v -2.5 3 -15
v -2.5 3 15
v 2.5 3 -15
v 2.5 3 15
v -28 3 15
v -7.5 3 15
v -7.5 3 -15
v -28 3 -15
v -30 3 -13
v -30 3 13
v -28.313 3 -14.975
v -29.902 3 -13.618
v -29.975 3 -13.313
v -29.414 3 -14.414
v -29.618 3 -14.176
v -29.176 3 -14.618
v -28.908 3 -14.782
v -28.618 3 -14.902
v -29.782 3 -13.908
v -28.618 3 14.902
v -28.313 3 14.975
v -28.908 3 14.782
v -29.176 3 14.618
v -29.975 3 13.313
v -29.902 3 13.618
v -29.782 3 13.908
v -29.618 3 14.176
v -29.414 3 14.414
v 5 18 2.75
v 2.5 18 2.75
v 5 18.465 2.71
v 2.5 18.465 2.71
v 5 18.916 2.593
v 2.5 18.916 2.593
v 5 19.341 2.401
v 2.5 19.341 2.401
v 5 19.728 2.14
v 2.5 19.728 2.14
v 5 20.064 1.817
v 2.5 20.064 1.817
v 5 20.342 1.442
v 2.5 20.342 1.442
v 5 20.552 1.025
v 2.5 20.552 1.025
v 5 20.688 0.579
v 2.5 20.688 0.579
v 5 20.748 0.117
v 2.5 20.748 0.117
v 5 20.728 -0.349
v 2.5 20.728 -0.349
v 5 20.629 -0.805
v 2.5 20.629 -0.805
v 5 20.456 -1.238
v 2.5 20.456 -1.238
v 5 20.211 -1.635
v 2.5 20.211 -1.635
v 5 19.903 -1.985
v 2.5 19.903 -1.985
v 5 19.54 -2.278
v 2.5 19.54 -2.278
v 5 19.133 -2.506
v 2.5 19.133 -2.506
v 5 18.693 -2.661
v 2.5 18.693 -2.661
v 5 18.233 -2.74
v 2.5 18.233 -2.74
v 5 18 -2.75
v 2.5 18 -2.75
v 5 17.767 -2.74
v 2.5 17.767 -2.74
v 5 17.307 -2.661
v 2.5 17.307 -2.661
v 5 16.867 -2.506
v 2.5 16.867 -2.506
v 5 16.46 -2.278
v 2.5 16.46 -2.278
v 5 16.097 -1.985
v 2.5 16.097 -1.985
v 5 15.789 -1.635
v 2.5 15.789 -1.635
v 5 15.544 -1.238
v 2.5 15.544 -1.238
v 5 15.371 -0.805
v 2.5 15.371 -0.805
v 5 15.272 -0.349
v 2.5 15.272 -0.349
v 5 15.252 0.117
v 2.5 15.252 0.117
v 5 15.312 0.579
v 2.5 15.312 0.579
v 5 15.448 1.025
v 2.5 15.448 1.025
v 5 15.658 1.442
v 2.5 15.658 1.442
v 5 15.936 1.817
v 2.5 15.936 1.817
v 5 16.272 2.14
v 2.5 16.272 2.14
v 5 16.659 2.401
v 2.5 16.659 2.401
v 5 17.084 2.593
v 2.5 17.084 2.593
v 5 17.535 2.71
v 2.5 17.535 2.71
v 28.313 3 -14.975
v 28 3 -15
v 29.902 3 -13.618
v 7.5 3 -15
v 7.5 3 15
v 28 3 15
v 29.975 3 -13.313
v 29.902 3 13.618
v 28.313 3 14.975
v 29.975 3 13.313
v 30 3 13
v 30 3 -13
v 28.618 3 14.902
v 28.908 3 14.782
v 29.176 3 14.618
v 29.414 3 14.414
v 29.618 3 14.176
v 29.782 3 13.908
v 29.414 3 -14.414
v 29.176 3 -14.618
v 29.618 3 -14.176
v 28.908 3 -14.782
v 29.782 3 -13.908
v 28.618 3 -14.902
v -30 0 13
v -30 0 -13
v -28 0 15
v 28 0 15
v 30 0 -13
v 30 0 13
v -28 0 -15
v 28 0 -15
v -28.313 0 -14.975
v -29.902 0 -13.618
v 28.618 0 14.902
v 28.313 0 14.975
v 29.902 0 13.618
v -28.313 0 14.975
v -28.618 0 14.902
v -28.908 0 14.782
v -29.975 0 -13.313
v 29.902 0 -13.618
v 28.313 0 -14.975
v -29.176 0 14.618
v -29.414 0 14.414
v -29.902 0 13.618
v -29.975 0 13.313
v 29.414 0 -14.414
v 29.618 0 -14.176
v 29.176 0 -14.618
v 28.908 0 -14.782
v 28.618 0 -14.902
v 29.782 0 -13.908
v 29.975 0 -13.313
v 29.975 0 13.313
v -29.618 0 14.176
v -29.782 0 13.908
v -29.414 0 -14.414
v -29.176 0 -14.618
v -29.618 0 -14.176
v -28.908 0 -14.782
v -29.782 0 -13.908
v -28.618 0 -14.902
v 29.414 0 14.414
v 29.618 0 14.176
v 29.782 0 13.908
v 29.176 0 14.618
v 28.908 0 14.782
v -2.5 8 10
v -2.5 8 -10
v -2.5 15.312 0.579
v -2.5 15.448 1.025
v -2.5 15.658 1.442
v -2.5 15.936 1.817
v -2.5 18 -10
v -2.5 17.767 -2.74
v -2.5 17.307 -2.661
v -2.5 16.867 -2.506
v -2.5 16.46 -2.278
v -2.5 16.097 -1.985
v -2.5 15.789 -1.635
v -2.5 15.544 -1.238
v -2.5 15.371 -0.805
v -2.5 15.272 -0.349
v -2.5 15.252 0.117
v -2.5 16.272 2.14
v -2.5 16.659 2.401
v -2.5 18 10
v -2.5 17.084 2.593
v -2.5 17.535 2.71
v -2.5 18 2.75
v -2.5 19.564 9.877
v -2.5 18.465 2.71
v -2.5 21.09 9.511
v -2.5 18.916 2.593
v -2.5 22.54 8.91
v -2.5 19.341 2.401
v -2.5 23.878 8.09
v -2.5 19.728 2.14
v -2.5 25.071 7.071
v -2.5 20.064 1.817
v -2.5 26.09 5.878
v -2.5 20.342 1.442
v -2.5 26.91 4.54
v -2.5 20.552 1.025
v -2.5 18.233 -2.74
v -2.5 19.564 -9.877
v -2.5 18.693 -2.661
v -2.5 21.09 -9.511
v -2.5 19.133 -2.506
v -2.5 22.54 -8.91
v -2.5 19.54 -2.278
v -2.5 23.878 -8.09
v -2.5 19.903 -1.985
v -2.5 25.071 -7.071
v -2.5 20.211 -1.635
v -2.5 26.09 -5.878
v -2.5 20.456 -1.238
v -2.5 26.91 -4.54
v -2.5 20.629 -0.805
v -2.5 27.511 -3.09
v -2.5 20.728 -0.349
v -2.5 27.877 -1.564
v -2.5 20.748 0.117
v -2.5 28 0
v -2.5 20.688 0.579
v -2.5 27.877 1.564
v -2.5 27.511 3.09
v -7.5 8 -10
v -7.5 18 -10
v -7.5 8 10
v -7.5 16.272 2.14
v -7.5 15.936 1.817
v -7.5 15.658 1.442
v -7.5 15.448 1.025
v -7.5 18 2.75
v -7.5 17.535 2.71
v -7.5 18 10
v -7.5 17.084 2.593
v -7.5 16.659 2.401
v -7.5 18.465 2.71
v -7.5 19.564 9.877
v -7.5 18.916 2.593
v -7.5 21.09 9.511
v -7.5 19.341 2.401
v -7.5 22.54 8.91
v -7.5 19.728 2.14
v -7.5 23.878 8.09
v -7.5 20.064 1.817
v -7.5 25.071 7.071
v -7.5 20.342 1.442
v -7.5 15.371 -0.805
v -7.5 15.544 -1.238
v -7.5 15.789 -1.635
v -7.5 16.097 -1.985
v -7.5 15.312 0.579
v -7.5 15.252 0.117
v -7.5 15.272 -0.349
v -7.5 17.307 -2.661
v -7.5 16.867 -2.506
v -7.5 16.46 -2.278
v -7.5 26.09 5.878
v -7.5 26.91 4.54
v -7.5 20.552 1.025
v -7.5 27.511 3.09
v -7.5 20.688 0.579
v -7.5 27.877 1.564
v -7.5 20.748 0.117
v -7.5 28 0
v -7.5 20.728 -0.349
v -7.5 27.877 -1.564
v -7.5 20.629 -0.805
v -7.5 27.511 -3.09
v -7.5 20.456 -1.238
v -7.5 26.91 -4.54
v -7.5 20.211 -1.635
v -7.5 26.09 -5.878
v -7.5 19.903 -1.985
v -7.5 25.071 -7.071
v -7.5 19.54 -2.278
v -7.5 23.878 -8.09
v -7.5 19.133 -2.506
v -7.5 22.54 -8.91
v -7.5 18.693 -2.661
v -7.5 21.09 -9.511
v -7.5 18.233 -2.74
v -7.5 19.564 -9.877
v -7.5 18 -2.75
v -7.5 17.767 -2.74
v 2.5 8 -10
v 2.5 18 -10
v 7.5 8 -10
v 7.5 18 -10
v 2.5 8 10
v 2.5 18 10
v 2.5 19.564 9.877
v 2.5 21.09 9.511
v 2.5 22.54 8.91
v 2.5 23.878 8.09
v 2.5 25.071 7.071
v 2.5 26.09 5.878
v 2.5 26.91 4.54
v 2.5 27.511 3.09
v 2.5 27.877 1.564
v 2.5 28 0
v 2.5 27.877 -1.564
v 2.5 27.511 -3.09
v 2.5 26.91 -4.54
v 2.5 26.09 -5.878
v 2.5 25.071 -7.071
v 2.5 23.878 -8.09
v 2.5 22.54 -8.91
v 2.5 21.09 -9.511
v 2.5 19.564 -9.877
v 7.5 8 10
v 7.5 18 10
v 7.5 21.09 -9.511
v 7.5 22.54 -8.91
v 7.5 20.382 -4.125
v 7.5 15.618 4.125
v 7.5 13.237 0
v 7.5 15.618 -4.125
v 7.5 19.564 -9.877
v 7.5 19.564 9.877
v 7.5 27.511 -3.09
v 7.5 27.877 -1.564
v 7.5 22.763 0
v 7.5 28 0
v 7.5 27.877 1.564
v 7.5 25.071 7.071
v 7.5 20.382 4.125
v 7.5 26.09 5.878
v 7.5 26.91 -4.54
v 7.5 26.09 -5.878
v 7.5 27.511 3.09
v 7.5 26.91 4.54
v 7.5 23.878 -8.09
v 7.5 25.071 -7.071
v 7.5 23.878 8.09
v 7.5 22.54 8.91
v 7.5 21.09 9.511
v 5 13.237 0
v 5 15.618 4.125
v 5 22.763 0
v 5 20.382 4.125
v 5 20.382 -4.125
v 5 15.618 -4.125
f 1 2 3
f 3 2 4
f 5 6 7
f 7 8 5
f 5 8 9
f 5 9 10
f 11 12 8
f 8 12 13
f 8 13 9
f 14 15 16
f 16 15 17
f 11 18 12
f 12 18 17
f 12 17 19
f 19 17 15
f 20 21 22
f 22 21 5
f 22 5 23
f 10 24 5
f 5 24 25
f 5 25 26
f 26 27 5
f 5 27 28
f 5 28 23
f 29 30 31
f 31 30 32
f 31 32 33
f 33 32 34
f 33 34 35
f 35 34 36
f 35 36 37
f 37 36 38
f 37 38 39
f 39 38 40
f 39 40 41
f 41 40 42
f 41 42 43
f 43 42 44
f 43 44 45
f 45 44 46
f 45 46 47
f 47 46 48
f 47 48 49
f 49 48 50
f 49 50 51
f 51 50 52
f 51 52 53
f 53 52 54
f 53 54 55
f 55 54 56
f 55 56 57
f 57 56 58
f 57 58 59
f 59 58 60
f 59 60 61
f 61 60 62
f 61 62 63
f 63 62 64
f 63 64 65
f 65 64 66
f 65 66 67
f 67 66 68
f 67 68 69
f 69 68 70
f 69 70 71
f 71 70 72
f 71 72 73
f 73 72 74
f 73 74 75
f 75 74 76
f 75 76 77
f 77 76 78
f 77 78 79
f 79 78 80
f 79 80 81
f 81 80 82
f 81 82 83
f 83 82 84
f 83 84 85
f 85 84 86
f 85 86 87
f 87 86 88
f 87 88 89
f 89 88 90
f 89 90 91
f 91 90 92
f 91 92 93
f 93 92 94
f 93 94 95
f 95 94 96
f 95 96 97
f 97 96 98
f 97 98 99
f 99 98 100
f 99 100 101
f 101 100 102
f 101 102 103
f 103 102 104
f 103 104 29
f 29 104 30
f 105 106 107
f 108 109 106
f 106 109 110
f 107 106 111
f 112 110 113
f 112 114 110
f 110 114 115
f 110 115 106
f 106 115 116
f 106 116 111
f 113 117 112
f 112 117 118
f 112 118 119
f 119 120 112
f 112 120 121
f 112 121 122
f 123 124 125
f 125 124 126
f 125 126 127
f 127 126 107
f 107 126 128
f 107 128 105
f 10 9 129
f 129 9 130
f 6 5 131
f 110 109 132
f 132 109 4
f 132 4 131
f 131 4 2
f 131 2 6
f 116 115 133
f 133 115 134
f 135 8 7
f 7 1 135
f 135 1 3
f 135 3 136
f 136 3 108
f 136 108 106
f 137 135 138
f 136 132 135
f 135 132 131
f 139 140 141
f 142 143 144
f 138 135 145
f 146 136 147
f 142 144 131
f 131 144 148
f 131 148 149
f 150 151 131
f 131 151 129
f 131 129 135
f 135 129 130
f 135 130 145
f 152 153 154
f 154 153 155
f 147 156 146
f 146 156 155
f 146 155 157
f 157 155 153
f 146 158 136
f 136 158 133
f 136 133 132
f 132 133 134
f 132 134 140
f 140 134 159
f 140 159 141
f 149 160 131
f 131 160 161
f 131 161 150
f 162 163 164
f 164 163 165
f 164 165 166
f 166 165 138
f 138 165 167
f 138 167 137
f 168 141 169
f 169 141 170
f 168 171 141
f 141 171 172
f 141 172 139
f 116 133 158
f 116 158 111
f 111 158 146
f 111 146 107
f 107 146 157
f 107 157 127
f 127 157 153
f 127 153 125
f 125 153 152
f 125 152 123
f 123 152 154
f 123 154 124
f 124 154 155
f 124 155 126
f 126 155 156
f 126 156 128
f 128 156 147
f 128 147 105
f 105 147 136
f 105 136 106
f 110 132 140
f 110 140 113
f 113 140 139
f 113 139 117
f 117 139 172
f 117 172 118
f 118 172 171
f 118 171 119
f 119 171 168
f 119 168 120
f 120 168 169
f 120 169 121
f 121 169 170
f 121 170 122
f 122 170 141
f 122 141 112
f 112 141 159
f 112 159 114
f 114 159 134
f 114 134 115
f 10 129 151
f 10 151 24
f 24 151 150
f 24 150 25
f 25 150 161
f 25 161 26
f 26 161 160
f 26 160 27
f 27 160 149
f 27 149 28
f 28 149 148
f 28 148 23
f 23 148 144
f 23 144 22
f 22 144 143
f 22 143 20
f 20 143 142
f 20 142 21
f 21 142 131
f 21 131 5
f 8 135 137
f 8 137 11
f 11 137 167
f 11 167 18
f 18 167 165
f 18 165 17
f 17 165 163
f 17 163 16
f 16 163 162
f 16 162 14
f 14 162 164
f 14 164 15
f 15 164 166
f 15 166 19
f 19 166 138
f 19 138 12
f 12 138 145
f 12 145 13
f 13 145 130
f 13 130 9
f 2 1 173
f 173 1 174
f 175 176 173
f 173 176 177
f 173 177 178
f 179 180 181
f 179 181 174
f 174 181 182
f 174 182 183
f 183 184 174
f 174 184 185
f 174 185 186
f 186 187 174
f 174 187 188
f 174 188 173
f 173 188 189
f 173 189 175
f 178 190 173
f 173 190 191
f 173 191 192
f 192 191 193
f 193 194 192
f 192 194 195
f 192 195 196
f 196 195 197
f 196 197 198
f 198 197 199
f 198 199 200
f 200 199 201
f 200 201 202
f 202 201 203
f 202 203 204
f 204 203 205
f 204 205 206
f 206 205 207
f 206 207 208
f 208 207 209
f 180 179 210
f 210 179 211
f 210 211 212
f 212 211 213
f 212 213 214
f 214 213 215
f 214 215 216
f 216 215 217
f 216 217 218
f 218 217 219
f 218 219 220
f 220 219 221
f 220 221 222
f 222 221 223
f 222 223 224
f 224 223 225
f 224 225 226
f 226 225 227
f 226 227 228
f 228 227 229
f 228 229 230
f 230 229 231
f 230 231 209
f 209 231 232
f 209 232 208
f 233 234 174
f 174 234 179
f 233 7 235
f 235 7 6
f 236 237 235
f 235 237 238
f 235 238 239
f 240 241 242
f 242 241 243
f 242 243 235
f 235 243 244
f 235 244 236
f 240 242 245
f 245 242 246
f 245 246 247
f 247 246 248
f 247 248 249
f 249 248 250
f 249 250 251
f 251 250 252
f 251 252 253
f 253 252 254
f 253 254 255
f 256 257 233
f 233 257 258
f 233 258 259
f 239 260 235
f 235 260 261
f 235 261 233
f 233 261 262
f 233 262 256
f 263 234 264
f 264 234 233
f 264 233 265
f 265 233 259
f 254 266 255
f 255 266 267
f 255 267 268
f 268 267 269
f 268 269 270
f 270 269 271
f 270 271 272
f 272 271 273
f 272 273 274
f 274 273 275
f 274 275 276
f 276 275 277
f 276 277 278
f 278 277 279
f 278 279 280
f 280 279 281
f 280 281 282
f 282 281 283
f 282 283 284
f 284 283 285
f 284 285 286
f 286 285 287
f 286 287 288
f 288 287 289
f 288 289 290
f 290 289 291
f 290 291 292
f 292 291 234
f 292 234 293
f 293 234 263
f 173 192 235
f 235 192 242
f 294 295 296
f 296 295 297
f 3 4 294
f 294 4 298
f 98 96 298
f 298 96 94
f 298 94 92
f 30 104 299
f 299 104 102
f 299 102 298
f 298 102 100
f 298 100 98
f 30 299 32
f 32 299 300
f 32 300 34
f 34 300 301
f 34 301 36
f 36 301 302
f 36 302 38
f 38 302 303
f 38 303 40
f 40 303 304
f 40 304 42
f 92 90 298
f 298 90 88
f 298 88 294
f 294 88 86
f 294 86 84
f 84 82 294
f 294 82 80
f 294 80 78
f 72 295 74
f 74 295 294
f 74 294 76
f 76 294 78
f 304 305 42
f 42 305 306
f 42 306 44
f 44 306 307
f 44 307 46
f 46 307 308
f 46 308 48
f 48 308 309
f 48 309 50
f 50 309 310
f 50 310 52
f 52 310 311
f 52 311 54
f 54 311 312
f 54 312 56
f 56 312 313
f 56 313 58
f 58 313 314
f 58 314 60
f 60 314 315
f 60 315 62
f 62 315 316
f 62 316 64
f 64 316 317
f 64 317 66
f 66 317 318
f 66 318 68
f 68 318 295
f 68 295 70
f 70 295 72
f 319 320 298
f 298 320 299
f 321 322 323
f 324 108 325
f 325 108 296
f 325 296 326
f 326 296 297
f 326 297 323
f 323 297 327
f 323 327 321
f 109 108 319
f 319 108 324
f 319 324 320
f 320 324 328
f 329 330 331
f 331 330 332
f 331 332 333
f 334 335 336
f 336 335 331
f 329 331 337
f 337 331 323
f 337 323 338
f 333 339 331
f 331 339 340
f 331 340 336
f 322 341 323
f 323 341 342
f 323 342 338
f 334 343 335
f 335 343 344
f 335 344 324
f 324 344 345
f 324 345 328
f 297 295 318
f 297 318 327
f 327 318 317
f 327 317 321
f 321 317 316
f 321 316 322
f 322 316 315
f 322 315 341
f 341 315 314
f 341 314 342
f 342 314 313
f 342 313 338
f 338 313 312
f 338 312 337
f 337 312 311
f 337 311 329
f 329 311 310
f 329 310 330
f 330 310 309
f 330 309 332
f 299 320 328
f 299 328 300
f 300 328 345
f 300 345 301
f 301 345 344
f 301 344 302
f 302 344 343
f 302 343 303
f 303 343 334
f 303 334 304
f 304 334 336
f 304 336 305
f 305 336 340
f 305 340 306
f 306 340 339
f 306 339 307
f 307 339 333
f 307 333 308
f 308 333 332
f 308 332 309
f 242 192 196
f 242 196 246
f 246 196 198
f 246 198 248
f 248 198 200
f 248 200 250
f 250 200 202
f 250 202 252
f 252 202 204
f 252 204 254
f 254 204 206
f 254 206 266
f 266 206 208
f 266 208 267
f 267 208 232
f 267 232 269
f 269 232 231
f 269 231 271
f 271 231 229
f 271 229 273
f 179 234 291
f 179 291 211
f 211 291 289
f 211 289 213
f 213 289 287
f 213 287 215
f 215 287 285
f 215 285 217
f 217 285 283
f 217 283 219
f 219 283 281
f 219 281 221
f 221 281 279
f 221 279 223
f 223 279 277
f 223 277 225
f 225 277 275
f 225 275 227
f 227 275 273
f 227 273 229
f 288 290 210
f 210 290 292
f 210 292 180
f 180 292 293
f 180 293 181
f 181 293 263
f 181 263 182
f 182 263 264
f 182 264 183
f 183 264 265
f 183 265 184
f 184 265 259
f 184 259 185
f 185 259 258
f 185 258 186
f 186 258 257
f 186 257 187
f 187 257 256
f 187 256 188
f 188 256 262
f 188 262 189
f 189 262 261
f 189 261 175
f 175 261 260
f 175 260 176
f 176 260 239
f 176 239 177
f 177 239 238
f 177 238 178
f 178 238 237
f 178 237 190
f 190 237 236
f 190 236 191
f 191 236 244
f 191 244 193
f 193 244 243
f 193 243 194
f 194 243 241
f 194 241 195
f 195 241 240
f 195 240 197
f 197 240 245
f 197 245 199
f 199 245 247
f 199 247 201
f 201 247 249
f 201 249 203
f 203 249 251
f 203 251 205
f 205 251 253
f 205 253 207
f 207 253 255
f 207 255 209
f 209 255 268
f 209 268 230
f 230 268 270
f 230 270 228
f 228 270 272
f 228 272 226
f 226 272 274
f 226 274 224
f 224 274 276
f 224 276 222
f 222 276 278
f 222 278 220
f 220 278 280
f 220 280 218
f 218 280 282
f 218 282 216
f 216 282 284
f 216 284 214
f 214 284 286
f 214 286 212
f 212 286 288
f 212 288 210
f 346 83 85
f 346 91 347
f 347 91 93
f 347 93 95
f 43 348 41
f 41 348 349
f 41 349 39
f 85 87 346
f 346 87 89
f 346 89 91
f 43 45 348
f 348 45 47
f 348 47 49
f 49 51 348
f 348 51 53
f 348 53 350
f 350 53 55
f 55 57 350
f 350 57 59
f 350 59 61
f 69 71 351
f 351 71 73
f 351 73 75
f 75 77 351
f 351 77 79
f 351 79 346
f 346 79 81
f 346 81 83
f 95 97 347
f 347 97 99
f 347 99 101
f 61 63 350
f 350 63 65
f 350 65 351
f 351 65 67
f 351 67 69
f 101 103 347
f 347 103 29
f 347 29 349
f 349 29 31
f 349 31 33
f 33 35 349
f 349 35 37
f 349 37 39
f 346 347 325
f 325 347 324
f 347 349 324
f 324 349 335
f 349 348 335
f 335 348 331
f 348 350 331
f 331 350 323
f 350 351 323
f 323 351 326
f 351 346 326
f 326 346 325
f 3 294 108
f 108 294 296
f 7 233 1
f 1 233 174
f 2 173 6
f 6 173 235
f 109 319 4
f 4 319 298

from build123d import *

# Parameters (mm, degrees)
SKETCH1_W               = 60
SKETCH1_H               = 30
BOSS_EXTRUDE1_DEPTH     = 3
FILLET2_R               = 2
SKETCH4_W               = 5
SKETCH4_H               = 20
BOSS_EXTRUDE2_DEPTH     = 25
FILLET3_R               = 10
CUT_EXTRUDE3_DEPTH      = 50.145193051
CUT_EXTRUDE3_DEPTH_BACK = 50.145193051
SKETCH5_R               = 2.75
CUT_EXTRUDE4_DEPTH      = 2.5
CHAMFER1_SIZE           = 5


with BuildPart() as part:
    # Sketch1 → Boss-Extrude1 (new body)
    with BuildSketch(Plane(origin=(0, 0, 0), x_dir=(1, 0, 0), z_dir=(0, 1, 0))):
        Rectangle(SKETCH1_W, SKETCH1_H)
    extrude(amount=BOSS_EXTRUDE1_DEPTH)

    # Fillet2
    fillet2_edges = [part.edges().sort_by_distance(p)[0] for p in [
        (-30, 1.5, -15),
        (30, 1.5, -15),
        (30, 1.5, 15),
        (-30, 1.5, 15),
    ]]
    fillet(fillet2_edges, radius=FILLET2_R)

    # Sketch4 → Boss-Extrude2 (add)
    with BuildSketch(Plane(origin=(0, 3, 0), x_dir=(1, 0, 0), z_dir=(0, 1, 0))):
        with Locations((-5, 0)):
            Rectangle(SKETCH4_W, SKETCH4_H)
        with Locations((5, 0)):
            Rectangle(SKETCH4_W, SKETCH4_H)
    extrude(amount=BOSS_EXTRUDE2_DEPTH)

    # Fillet3
    fillet3_edges = [part.edges().sort_by_distance(p)[0] for p in [
        (5, 28, 10),
        (5, 28, -10),
        (-5, 28, -10),
        (-5, 28, 10),
    ]]
    fillet(fillet3_edges, radius=FILLET3_R - 0.0001)  # a hair under: the kernel refuses the full size

    # Sketch5 → Cut-Extrude3 (cut, two sides: drawn at the far end of the back side and taken through both)
    with BuildSketch(Plane.ZY.offset(7.5).offset(-CUT_EXTRUDE3_DEPTH_BACK)):
        with Locations((0, 18)):
            Circle(SKETCH5_R)
    extrude(amount=CUT_EXTRUDE3_DEPTH + CUT_EXTRUDE3_DEPTH_BACK, mode=Mode.SUBTRACT)

    # Sketch6 → Cut-Extrude4 (cut)
    with BuildSketch(Plane(origin=(7.5, 0, 0), x_dir=(0, 0, -1), z_dir=(1, 0, 0))):
        Polygon((0, 13.236860279), (4.125, 15.61843014), (4.125, 20.38156986), (0, 22.763139721), (-4.125, 20.38156986), (-4.125, 15.61843014), align=None)
    extrude(amount=-CUT_EXTRUDE4_DEPTH, mode=Mode.SUBTRACT)

    # Chamfer1
    chamfer1_edges = [part.edges().sort_by_distance(p)[0] for p in [
        (-5, 3, -10),
        (-5, 3, 10),
        (5, 3, -10),
        (5, 3, 10),
    ]]
    chamfer(chamfer1_edges, length=CHAMFER1_SIZE - 0.0001)  # a hair under: the kernel refuses the full size


solid = part.part
